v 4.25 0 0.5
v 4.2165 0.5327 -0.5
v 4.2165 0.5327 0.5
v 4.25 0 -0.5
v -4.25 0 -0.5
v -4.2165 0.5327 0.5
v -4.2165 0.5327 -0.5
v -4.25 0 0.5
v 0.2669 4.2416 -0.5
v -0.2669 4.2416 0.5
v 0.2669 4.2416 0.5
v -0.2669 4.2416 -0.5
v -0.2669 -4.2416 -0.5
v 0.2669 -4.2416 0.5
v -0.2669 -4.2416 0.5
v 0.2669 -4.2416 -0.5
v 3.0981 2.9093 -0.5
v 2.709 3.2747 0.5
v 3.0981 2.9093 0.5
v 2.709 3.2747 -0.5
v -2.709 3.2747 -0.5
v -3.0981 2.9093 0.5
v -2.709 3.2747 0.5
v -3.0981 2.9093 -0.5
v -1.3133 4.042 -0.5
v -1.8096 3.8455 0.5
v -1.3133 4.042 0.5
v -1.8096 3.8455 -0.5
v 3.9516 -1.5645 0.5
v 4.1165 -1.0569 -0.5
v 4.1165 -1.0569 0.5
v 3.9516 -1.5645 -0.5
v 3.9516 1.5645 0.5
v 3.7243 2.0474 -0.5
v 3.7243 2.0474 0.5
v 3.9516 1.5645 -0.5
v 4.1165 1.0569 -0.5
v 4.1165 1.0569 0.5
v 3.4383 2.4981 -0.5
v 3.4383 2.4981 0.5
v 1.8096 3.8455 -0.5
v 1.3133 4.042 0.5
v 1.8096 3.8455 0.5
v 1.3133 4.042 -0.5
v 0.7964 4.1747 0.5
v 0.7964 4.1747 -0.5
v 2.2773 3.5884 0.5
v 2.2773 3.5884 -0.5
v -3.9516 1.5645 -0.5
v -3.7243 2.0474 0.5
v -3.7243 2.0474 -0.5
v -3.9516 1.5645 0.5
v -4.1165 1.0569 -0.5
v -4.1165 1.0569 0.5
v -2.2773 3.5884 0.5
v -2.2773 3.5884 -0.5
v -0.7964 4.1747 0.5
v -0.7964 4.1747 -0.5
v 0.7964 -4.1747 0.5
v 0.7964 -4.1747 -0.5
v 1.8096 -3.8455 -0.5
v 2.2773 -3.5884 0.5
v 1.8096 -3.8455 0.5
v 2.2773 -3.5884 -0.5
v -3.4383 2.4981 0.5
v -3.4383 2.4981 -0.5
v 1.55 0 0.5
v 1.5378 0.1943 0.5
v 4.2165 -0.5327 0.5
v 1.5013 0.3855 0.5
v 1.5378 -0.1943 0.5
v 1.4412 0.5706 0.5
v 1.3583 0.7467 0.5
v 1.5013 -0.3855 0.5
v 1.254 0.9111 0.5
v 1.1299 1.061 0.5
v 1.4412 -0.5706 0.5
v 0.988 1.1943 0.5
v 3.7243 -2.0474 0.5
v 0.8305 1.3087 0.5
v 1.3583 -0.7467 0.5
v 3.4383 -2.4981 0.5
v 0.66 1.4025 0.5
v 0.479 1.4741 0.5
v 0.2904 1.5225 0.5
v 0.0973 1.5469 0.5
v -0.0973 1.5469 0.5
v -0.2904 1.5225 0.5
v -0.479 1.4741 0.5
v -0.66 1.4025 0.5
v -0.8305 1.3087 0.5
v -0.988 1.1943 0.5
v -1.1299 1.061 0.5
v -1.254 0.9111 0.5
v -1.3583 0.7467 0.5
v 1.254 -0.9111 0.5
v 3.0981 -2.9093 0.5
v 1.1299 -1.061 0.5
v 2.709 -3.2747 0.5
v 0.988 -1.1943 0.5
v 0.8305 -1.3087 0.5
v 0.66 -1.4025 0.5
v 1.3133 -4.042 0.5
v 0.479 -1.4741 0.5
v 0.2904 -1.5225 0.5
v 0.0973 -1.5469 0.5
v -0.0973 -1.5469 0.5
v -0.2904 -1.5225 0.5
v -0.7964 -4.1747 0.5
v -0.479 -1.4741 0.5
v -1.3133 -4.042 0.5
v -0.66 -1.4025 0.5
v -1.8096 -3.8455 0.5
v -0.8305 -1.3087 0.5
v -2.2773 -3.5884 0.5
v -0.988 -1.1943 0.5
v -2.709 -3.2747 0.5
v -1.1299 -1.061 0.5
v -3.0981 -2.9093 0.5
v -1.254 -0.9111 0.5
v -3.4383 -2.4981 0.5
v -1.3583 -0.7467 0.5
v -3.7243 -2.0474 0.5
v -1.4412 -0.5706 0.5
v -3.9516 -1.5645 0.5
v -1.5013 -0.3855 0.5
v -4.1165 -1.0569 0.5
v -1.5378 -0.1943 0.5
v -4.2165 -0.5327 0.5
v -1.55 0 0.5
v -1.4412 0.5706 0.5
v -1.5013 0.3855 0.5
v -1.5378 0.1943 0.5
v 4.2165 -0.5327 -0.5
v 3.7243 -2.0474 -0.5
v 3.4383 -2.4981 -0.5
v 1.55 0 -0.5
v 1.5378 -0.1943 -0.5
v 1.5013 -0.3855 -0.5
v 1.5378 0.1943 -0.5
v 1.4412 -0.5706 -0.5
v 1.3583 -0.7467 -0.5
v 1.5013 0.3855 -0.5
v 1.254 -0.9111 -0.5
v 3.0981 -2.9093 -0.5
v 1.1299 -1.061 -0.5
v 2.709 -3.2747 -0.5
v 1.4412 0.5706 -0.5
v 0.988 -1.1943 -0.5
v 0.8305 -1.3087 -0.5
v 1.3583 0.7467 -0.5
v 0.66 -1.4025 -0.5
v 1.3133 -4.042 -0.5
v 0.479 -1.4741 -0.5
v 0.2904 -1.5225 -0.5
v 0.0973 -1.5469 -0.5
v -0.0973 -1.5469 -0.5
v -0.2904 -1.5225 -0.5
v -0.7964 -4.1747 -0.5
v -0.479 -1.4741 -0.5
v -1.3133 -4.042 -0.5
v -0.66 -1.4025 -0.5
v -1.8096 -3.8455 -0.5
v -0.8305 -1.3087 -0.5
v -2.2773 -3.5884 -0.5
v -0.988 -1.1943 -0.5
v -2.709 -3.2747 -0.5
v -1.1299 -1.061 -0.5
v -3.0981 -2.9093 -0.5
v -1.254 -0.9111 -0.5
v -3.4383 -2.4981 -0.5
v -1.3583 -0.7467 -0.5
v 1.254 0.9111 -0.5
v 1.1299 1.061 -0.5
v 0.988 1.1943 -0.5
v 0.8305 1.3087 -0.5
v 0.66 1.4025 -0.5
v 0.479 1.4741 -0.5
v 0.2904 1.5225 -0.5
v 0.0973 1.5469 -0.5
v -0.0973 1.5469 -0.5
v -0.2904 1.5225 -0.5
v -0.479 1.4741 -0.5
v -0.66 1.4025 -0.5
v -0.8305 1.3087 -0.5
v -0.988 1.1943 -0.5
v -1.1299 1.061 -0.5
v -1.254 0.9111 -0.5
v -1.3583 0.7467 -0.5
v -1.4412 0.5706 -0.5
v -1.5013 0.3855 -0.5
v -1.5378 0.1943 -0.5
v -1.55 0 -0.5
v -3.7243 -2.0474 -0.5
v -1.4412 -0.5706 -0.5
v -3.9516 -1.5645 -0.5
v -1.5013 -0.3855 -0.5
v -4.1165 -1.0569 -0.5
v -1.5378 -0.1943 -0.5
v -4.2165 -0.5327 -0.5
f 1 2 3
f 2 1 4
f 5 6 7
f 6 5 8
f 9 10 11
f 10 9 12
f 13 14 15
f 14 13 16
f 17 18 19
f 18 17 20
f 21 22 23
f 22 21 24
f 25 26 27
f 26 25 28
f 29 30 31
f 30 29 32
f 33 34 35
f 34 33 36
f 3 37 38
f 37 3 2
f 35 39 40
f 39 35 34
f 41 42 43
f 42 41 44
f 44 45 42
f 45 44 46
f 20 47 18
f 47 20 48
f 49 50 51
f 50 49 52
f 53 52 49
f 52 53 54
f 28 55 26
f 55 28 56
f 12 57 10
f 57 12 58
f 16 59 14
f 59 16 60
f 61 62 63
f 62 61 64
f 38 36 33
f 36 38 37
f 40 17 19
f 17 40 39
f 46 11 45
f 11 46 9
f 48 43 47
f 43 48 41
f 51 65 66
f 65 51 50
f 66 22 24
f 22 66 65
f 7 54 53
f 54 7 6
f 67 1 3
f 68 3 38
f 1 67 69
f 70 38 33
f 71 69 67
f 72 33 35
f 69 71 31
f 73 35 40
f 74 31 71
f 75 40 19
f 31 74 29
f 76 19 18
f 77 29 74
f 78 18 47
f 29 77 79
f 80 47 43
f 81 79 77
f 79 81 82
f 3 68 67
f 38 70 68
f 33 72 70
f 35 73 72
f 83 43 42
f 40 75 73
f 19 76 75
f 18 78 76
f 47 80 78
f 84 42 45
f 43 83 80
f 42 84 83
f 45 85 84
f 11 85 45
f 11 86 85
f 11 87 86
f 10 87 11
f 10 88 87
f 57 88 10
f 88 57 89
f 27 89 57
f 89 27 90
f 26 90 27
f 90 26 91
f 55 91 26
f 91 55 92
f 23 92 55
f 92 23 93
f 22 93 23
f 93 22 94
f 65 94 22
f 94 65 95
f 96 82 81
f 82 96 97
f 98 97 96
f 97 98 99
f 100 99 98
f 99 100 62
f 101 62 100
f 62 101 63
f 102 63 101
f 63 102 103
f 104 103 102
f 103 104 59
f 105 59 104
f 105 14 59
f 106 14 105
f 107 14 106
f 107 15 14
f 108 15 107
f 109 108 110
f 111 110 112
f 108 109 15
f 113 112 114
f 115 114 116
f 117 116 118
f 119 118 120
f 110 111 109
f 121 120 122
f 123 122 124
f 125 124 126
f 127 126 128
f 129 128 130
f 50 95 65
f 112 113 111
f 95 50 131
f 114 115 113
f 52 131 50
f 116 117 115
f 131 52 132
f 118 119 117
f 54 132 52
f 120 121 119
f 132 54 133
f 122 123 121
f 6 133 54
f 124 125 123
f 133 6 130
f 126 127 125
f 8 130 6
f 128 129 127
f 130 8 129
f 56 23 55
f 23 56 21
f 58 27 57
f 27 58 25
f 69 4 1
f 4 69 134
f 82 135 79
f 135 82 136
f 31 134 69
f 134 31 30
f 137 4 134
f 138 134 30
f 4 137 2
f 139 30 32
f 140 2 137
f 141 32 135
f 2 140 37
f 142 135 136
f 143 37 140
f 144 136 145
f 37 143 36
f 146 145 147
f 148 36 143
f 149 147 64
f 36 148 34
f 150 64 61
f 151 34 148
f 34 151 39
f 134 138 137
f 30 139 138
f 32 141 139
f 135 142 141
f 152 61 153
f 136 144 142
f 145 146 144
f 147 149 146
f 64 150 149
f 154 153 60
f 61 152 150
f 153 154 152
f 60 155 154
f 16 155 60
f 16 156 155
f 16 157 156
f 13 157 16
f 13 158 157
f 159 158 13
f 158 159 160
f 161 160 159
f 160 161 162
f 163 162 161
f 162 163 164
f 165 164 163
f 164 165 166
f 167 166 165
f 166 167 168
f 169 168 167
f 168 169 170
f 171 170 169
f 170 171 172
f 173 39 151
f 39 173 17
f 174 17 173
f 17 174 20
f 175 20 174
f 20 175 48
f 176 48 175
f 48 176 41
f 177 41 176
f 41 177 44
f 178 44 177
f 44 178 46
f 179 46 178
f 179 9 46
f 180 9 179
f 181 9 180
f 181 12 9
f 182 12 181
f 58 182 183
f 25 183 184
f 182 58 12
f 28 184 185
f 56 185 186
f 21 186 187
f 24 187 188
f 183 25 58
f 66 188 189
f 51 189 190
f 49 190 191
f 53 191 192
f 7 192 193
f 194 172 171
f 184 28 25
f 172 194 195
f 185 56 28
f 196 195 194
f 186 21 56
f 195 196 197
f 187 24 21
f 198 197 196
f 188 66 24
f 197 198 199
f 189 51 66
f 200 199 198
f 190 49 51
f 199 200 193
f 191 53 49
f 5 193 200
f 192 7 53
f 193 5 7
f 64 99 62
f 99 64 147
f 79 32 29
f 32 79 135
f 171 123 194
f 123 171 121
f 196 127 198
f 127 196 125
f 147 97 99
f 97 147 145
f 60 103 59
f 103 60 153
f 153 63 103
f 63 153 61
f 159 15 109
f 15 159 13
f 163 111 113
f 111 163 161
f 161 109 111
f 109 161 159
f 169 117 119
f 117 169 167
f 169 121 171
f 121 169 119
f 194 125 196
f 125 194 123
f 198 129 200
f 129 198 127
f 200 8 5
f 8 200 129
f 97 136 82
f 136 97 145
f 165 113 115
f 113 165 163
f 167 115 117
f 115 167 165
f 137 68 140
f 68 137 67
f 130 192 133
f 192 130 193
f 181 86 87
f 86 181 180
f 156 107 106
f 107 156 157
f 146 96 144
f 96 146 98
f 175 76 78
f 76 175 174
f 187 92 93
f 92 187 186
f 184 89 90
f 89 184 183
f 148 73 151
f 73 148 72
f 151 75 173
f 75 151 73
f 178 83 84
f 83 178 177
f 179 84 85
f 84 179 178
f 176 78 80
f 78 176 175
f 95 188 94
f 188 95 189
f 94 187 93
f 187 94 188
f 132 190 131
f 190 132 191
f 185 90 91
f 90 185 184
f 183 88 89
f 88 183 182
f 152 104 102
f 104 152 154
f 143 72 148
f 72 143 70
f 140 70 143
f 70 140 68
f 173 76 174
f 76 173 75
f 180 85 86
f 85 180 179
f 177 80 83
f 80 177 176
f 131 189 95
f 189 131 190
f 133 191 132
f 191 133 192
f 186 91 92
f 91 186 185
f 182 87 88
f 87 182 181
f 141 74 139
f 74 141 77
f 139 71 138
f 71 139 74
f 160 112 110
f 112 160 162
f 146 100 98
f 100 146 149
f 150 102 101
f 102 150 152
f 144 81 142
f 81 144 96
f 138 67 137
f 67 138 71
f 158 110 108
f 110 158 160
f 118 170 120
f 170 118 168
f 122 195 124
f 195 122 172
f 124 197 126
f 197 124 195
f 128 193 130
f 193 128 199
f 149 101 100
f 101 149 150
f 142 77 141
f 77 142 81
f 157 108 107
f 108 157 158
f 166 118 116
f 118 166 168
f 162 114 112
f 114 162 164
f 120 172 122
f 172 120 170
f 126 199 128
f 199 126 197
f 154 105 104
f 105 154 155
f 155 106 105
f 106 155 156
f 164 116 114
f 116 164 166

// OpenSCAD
$fn = 50;


difference() {
	union() {
		translate(v = [0, 0, -0.5000000000]) {
			cylinder(h = 1, r = 4.2500000000);
		}
	}
	union() {
		translate(v = [0, 0, -100.0000000000]) {
			cylinder(h = 200, r = 1.5500000000);
		}
	}
}
